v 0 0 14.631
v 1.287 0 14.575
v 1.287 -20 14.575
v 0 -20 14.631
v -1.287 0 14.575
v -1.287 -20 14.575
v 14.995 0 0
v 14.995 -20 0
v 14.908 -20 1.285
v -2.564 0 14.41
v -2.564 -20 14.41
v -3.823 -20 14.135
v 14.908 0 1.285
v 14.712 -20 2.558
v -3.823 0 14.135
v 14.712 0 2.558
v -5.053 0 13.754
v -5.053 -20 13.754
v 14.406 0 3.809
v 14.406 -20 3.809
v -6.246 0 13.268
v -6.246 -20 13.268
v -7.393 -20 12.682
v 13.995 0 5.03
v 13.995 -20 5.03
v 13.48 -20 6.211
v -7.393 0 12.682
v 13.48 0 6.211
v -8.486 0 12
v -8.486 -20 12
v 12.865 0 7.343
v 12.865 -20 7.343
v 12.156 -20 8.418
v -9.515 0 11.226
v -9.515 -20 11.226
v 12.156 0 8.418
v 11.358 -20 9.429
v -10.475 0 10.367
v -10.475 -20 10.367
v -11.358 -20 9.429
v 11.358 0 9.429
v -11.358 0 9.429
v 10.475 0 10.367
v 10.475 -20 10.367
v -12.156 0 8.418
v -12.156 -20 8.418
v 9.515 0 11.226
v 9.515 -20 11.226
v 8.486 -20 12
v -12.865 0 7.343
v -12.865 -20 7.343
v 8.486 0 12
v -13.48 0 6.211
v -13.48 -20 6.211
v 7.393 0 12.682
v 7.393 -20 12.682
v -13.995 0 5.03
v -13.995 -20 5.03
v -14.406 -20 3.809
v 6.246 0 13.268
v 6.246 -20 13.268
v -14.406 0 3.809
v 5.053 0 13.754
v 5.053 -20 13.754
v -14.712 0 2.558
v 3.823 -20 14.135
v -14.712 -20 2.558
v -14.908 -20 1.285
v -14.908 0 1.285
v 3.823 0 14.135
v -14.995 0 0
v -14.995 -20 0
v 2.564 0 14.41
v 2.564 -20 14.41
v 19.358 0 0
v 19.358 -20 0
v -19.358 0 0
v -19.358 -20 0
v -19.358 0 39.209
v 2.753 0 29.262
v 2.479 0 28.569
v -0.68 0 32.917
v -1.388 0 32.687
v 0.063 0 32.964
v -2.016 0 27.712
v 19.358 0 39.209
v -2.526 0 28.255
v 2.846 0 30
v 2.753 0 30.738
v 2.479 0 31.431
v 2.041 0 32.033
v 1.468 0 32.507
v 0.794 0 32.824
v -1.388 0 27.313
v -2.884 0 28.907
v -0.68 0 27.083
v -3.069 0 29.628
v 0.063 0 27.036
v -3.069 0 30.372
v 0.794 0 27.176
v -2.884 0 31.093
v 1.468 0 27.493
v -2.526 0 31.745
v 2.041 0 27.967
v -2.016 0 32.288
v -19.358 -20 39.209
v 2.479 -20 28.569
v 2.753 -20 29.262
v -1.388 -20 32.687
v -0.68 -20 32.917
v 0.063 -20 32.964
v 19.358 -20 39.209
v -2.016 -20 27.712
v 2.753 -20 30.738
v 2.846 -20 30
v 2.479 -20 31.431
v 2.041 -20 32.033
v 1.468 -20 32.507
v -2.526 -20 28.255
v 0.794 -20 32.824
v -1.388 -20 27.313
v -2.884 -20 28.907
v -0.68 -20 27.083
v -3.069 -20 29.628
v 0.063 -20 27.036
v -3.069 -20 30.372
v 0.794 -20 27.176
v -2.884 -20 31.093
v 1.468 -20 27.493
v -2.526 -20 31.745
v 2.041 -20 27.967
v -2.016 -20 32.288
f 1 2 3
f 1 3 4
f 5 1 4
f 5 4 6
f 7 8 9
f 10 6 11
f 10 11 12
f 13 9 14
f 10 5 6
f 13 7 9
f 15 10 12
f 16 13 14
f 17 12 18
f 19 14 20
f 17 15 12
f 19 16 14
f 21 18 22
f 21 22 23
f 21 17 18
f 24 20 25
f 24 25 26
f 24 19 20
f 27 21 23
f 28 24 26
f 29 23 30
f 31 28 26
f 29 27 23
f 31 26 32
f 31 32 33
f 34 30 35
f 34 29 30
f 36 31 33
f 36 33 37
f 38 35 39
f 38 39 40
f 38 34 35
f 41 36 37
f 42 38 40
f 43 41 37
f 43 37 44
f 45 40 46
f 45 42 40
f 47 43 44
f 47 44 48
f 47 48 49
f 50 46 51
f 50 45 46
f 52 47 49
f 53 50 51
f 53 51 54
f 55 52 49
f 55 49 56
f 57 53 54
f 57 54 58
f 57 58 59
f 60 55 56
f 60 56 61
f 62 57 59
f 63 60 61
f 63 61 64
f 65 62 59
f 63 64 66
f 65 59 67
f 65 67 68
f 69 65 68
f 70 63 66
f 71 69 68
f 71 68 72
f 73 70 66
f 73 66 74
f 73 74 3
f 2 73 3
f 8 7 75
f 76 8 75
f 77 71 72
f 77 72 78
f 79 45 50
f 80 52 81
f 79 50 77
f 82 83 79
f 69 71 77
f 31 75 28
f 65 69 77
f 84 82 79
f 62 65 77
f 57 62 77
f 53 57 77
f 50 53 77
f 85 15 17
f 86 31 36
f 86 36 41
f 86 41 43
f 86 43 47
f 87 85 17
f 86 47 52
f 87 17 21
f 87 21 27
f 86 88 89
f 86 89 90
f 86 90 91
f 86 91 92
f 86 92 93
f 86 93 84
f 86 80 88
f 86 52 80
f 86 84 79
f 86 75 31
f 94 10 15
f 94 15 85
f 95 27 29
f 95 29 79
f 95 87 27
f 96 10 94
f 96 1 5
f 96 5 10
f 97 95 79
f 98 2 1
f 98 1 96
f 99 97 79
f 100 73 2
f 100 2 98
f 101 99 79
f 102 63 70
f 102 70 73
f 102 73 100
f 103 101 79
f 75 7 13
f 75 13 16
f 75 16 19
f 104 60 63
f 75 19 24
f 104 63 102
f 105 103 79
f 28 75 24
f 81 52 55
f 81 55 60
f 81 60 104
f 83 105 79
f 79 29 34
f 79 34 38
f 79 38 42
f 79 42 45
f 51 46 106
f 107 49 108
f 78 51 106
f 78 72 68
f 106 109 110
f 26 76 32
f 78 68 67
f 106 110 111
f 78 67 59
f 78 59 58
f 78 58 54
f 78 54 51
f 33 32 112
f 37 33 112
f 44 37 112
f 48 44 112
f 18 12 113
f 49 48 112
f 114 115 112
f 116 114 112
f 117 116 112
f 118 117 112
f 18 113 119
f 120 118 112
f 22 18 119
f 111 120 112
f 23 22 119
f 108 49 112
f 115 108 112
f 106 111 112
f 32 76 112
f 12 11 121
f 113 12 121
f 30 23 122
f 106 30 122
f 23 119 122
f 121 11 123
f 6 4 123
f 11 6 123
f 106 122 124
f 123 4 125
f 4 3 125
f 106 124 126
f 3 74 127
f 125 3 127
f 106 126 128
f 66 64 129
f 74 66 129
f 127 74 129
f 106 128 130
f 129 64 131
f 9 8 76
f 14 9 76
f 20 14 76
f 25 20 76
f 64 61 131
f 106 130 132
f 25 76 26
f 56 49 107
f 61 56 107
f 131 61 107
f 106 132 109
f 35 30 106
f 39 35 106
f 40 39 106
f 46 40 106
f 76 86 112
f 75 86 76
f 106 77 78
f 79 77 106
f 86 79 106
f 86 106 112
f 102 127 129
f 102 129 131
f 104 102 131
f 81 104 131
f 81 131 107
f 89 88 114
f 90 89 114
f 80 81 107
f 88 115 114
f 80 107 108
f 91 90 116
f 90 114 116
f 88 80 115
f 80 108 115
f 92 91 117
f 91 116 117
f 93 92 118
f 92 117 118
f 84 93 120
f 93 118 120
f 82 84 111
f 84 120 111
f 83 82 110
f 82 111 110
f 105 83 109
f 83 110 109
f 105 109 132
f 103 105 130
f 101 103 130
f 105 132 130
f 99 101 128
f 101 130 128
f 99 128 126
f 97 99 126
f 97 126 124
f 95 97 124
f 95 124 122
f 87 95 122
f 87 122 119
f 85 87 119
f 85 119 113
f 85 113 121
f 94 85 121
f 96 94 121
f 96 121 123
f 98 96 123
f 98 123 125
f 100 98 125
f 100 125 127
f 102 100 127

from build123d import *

# Parameters (mm, degrees)
PAD_DEPTH    = 20
SKETCH001_R  = 2.969433
POCKET_DEPTH = 20.001


with BuildPart() as part:
    # Sketch → Pad (new body)
    with BuildSketch(Plane.XZ):
        with BuildLine():
            ThreePointArc((14.995451, 1e-06), (0, 14.630607), (-14.995451, 1e-06))
            Line((-14.995451, 1e-06), (-19.357943, 1e-06))
            Line((-19.357943, 1e-06), (-19.357943, 39.209084))
            Line((-19.357943, 39.209084), (19.357943, 39.209084))
            Line((19.357943, 39.209084), (19.357943, 1e-06))
            Line((14.995451, 1e-06), (19.357943, 1e-06))
        make_face()
    extrude(amount=PAD_DEPTH)

    # Sketch001 → Pocket (cut, through all)
    with BuildSketch(Plane.XZ.offset(20)):
        with Locations((-0.123295, 30)):
            Circle(SKETCH001_R)
    extrude(amount=-POCKET_DEPTH, mode=Mode.SUBTRACT)


solid = part.part
